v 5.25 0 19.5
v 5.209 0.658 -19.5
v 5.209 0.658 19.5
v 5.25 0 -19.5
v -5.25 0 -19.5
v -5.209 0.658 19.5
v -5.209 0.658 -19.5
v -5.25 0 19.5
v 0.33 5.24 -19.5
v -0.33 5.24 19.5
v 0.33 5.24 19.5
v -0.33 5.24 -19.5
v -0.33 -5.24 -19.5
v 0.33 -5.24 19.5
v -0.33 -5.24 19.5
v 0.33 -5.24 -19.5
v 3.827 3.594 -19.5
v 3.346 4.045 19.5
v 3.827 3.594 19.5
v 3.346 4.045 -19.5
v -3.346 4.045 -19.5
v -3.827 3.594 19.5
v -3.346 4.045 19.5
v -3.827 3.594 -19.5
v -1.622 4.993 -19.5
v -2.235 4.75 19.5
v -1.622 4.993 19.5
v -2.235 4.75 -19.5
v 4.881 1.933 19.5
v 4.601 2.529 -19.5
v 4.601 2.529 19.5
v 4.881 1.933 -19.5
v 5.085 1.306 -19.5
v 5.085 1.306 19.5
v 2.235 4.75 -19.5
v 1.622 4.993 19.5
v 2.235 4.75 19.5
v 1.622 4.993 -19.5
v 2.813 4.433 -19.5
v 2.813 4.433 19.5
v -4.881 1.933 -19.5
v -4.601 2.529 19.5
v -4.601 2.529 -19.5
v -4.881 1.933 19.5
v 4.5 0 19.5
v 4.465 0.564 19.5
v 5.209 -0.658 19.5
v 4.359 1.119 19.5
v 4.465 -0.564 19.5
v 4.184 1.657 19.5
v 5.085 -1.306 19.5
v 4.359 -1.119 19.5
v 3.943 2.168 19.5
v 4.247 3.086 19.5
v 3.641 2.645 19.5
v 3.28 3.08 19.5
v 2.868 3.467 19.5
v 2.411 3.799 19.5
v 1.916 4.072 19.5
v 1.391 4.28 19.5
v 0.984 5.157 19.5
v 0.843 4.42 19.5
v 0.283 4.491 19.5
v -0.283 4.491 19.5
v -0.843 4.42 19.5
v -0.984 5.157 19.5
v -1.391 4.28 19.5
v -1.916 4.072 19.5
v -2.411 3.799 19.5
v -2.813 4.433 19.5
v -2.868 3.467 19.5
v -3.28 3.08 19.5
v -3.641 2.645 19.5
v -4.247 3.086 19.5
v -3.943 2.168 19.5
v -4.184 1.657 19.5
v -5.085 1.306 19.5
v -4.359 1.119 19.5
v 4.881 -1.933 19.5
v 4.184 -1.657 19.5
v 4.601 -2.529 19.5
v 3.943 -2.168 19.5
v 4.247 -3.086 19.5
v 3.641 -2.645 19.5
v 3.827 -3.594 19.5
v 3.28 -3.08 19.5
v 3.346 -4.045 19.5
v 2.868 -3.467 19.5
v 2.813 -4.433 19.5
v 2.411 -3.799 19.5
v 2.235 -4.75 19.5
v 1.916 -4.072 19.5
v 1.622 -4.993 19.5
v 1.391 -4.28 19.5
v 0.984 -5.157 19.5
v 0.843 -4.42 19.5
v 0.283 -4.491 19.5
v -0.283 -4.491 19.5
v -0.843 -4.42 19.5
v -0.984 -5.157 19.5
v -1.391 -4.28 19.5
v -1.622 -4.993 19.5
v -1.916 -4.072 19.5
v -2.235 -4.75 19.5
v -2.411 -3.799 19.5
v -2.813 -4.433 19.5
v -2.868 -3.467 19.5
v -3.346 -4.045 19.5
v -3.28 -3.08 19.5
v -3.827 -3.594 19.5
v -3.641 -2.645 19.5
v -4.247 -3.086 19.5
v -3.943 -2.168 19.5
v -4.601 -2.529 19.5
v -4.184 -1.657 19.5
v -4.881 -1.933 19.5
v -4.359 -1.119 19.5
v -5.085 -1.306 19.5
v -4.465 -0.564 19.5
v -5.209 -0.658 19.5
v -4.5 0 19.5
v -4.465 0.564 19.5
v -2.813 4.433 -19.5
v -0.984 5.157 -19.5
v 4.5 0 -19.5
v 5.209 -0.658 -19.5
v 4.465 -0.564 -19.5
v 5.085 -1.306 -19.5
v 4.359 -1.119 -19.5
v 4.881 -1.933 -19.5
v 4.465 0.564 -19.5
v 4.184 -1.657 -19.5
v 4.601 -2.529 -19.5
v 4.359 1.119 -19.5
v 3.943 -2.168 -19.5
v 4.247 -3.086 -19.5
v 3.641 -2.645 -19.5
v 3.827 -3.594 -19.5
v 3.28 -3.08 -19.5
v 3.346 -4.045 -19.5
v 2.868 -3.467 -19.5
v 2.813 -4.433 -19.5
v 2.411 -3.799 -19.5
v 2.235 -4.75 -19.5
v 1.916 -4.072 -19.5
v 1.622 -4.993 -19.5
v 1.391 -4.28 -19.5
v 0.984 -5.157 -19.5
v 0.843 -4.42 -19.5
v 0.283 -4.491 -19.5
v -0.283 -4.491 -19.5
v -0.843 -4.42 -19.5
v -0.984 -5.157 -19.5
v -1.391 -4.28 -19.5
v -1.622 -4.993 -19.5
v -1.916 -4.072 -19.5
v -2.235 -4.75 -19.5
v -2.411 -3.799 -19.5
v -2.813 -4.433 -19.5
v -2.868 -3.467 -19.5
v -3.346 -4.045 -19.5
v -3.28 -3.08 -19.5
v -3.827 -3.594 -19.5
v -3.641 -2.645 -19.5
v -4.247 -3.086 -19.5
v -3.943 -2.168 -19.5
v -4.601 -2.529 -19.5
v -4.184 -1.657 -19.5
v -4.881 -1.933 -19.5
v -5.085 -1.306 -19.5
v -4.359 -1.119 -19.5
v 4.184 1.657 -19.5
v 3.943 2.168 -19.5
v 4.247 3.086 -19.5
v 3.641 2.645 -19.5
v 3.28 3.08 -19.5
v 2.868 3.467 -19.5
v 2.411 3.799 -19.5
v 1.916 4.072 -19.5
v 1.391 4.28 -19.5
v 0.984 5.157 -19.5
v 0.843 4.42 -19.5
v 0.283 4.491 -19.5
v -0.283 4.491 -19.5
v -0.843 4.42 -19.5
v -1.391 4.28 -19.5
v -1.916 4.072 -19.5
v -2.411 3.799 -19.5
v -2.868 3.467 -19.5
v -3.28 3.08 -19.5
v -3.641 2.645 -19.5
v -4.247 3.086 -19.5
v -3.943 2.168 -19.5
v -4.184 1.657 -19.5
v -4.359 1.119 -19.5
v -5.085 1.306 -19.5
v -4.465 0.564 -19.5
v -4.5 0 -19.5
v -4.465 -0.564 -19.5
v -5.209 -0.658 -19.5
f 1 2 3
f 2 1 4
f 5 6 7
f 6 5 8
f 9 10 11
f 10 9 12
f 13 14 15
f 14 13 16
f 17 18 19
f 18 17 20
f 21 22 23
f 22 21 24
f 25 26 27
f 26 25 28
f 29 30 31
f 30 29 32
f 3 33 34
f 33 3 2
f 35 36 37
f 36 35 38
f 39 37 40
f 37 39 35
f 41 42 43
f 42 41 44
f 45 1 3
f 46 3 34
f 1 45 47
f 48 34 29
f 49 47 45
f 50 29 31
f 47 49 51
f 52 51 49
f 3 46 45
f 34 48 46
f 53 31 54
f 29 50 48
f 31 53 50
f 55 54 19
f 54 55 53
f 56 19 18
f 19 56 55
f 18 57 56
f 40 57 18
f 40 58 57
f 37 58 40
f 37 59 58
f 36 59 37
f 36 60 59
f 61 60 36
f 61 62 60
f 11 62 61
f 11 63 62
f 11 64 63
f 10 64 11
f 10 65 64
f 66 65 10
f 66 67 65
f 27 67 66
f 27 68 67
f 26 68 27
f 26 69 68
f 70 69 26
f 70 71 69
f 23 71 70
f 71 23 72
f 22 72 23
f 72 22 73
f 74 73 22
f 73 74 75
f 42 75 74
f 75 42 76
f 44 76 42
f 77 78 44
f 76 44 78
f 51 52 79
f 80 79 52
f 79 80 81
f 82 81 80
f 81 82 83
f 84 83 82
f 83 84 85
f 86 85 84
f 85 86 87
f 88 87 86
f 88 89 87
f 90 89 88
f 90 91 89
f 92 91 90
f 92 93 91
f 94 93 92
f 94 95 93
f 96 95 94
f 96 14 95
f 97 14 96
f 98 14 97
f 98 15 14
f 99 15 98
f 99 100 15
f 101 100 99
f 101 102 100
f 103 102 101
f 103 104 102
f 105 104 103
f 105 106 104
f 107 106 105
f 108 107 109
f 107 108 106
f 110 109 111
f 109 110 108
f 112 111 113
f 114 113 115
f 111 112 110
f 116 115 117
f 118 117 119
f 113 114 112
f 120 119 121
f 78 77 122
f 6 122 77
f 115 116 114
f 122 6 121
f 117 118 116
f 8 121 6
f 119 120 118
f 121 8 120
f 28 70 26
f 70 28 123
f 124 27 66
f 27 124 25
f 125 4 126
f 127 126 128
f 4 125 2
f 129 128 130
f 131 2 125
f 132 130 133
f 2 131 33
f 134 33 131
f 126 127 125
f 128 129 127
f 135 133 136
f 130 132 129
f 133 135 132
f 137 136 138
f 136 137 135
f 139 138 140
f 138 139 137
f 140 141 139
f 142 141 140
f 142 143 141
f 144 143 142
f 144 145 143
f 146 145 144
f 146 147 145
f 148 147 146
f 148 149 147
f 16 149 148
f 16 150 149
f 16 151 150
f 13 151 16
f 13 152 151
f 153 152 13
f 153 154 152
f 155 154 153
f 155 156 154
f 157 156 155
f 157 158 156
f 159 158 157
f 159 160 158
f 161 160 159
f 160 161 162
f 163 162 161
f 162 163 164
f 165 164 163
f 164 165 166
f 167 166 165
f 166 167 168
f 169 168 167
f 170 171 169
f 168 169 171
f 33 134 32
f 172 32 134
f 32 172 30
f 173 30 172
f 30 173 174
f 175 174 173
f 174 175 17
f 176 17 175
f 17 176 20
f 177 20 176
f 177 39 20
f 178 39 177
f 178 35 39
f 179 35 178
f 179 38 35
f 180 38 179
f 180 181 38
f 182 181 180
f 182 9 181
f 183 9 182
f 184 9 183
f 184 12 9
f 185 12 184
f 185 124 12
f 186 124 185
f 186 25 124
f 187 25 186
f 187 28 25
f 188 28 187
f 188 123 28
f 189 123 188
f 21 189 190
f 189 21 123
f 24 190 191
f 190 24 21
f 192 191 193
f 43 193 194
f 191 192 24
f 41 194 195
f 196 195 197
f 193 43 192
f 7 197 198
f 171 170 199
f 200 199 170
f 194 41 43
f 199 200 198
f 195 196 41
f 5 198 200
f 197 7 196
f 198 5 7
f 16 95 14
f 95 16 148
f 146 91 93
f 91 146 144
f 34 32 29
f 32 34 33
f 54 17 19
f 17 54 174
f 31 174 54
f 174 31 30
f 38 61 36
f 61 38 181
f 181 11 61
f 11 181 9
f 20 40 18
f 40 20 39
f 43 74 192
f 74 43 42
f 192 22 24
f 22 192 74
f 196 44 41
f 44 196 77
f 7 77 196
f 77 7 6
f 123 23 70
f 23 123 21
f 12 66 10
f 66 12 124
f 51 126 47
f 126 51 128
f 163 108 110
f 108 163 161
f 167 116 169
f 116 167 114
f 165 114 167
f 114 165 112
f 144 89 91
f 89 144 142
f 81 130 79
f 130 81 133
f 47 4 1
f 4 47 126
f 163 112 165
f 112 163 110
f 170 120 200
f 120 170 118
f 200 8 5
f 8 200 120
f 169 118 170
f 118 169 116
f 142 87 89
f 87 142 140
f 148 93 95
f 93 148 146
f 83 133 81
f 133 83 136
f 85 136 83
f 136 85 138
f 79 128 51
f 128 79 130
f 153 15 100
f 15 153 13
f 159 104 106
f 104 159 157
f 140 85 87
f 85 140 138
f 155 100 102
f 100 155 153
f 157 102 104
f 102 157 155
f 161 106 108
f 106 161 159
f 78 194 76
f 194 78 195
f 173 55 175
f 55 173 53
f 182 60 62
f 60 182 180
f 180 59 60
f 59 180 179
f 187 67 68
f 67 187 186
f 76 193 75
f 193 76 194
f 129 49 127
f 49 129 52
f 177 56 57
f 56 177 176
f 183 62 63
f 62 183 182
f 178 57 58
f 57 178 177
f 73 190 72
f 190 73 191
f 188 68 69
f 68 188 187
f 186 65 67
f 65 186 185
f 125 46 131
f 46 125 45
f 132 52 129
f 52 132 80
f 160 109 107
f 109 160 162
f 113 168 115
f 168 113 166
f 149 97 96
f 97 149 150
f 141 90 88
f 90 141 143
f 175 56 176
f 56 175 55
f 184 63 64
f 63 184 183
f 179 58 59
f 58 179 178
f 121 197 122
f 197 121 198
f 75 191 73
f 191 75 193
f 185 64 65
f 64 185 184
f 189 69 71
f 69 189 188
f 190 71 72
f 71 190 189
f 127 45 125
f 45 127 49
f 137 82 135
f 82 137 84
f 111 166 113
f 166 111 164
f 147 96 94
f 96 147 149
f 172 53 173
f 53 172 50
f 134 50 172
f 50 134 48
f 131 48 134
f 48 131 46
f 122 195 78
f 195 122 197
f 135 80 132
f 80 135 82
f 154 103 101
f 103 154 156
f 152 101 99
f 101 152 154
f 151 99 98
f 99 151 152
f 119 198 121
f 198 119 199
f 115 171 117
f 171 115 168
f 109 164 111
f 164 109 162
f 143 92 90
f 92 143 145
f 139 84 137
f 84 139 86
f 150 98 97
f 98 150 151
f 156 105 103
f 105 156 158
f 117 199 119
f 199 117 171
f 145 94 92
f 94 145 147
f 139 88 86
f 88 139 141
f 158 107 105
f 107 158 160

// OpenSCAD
$fn = 50;


difference() {
	union() {
		translate(v = [0, 0, -19.5000000000]) {
			cylinder(h = 39, r = 5.2500000000);
		}
	}
	union() {
		translate(v = [0, 0, -100.0000000000]) {
			cylinder(h = 200, r = 4.5000000000);
		}
	}
}
